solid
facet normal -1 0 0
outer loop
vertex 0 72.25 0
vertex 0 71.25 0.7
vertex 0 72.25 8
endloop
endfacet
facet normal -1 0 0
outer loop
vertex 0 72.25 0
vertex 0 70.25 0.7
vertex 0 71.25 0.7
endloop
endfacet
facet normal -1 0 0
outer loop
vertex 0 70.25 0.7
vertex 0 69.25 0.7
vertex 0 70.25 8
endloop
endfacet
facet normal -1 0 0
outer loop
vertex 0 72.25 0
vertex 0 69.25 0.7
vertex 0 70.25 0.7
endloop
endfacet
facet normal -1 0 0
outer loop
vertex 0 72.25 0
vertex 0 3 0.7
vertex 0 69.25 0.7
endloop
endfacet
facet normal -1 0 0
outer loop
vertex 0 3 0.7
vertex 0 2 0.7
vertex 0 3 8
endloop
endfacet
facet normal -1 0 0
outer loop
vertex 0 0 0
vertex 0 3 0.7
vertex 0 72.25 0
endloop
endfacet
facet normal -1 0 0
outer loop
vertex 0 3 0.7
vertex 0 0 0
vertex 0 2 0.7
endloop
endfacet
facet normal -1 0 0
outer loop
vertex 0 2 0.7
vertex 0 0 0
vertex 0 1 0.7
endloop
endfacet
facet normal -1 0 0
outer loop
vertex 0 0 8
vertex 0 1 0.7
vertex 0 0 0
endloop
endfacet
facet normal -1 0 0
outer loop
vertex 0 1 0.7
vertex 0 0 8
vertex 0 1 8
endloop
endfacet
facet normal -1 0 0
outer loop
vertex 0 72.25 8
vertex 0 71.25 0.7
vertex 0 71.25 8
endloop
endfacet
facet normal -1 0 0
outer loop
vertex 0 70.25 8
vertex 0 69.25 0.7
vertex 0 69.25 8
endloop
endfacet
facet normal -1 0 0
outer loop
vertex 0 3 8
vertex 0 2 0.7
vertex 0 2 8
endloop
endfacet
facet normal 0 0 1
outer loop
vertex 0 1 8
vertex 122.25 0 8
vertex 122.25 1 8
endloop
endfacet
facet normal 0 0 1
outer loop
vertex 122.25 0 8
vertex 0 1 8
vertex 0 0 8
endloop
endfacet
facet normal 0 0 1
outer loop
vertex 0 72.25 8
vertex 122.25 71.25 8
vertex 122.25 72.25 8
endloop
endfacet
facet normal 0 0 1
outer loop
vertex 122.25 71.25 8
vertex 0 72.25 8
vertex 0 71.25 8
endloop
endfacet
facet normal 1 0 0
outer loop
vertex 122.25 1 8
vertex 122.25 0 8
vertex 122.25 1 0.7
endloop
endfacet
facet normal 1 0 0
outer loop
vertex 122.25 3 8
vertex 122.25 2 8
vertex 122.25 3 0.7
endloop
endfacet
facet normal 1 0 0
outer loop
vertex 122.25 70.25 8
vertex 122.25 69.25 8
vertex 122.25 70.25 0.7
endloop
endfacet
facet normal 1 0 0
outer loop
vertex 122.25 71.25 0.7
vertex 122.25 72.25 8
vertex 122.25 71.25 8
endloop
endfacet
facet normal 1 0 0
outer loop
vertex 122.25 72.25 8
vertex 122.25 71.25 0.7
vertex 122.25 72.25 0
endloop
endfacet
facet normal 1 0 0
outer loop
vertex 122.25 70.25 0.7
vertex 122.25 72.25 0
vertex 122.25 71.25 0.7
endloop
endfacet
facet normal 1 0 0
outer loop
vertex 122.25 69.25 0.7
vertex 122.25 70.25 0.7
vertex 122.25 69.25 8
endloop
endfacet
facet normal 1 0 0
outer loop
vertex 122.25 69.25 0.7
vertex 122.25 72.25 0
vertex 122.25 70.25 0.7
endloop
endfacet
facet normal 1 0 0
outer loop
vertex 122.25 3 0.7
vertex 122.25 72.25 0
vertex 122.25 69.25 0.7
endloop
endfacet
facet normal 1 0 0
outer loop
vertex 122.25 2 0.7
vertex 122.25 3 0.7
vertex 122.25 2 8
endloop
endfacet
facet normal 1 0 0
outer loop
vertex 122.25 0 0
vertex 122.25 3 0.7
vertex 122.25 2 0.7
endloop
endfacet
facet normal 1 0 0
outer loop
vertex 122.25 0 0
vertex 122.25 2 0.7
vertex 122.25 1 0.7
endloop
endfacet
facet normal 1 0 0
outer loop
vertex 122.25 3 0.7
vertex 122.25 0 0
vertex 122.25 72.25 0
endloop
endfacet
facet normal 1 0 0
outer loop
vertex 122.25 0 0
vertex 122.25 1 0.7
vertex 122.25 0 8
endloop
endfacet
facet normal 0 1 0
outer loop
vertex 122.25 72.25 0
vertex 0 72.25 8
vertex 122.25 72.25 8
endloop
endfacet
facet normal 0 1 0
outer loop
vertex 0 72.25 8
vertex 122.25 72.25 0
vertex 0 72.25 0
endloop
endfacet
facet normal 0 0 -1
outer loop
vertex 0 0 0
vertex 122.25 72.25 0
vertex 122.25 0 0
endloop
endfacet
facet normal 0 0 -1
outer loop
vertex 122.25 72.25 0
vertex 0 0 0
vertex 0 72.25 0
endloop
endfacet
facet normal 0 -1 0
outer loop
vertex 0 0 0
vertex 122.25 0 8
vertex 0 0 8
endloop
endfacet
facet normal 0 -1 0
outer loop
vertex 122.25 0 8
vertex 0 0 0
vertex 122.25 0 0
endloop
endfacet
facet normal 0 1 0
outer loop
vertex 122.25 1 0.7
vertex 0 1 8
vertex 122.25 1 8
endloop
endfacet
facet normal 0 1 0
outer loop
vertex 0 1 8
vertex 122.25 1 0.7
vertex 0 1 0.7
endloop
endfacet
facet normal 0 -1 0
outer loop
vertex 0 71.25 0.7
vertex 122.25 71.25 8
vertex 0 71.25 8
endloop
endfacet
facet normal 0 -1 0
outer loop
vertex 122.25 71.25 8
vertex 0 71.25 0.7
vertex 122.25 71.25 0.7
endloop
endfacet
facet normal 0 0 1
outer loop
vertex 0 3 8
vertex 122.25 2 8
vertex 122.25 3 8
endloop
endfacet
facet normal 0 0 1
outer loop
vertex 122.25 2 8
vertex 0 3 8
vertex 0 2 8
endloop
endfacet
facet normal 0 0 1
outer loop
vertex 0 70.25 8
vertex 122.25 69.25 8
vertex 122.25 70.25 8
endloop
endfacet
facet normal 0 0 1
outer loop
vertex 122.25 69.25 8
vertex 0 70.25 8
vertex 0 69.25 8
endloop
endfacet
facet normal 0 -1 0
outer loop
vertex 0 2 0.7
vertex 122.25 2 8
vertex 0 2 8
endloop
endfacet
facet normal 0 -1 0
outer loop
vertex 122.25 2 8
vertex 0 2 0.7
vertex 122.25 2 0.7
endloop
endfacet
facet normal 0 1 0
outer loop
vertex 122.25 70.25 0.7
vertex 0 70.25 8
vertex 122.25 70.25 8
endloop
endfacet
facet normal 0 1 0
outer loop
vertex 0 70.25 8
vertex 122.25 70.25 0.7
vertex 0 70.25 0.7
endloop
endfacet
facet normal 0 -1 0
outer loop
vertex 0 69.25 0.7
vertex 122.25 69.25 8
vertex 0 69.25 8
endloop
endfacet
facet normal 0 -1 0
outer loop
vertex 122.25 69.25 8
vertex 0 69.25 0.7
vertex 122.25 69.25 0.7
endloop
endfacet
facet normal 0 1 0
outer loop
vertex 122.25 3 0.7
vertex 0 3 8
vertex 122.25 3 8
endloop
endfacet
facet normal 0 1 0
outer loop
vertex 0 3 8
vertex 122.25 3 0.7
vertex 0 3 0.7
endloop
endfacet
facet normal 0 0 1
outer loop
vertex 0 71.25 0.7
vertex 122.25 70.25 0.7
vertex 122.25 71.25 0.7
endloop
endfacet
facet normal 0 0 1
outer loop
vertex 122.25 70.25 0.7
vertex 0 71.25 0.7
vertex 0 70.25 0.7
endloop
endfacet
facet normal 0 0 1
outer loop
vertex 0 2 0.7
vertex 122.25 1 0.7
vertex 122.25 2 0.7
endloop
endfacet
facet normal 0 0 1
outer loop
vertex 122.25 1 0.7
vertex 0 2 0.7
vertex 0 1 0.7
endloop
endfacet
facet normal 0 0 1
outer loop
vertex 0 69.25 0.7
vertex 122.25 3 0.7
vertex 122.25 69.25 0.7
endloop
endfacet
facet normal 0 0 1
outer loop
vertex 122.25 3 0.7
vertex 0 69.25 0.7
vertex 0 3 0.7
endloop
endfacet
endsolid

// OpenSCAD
//General
$fn = 12;
tolerance = 0.5;
wall = 2;

pieces = 4;

l_fixture = 610-tolerance*pieces;

l_cover = (l_fixture - (60 - tolerance)*2)/pieces;
// l_cover = 10;
cover_wall = 1;
w_cover_inner = 70+tolerance/2;
w_cover_outter = w_cover_inner+cover_wall*2;
h_top_plane = 0.3+0.2*2;
h_cover = 8;


// main plane
cube([l_cover, w_cover_outter, h_top_plane]);

difference(){
  cube([l_cover, w_cover_outter, h_cover]);
  translate([0, cover_wall, 0])
  cube([l_cover, w_cover_outter-cover_wall*2, h_cover+0.001]);
}

translate([0, cover_wall*2, 0])
difference(){
  cube([l_cover, w_cover_inner-cover_wall*2, h_cover]);
  translate([0, cover_wall, 0])
  cube([l_cover, w_cover_inner-cover_wall*2*2, h_cover+0.001]);
}
